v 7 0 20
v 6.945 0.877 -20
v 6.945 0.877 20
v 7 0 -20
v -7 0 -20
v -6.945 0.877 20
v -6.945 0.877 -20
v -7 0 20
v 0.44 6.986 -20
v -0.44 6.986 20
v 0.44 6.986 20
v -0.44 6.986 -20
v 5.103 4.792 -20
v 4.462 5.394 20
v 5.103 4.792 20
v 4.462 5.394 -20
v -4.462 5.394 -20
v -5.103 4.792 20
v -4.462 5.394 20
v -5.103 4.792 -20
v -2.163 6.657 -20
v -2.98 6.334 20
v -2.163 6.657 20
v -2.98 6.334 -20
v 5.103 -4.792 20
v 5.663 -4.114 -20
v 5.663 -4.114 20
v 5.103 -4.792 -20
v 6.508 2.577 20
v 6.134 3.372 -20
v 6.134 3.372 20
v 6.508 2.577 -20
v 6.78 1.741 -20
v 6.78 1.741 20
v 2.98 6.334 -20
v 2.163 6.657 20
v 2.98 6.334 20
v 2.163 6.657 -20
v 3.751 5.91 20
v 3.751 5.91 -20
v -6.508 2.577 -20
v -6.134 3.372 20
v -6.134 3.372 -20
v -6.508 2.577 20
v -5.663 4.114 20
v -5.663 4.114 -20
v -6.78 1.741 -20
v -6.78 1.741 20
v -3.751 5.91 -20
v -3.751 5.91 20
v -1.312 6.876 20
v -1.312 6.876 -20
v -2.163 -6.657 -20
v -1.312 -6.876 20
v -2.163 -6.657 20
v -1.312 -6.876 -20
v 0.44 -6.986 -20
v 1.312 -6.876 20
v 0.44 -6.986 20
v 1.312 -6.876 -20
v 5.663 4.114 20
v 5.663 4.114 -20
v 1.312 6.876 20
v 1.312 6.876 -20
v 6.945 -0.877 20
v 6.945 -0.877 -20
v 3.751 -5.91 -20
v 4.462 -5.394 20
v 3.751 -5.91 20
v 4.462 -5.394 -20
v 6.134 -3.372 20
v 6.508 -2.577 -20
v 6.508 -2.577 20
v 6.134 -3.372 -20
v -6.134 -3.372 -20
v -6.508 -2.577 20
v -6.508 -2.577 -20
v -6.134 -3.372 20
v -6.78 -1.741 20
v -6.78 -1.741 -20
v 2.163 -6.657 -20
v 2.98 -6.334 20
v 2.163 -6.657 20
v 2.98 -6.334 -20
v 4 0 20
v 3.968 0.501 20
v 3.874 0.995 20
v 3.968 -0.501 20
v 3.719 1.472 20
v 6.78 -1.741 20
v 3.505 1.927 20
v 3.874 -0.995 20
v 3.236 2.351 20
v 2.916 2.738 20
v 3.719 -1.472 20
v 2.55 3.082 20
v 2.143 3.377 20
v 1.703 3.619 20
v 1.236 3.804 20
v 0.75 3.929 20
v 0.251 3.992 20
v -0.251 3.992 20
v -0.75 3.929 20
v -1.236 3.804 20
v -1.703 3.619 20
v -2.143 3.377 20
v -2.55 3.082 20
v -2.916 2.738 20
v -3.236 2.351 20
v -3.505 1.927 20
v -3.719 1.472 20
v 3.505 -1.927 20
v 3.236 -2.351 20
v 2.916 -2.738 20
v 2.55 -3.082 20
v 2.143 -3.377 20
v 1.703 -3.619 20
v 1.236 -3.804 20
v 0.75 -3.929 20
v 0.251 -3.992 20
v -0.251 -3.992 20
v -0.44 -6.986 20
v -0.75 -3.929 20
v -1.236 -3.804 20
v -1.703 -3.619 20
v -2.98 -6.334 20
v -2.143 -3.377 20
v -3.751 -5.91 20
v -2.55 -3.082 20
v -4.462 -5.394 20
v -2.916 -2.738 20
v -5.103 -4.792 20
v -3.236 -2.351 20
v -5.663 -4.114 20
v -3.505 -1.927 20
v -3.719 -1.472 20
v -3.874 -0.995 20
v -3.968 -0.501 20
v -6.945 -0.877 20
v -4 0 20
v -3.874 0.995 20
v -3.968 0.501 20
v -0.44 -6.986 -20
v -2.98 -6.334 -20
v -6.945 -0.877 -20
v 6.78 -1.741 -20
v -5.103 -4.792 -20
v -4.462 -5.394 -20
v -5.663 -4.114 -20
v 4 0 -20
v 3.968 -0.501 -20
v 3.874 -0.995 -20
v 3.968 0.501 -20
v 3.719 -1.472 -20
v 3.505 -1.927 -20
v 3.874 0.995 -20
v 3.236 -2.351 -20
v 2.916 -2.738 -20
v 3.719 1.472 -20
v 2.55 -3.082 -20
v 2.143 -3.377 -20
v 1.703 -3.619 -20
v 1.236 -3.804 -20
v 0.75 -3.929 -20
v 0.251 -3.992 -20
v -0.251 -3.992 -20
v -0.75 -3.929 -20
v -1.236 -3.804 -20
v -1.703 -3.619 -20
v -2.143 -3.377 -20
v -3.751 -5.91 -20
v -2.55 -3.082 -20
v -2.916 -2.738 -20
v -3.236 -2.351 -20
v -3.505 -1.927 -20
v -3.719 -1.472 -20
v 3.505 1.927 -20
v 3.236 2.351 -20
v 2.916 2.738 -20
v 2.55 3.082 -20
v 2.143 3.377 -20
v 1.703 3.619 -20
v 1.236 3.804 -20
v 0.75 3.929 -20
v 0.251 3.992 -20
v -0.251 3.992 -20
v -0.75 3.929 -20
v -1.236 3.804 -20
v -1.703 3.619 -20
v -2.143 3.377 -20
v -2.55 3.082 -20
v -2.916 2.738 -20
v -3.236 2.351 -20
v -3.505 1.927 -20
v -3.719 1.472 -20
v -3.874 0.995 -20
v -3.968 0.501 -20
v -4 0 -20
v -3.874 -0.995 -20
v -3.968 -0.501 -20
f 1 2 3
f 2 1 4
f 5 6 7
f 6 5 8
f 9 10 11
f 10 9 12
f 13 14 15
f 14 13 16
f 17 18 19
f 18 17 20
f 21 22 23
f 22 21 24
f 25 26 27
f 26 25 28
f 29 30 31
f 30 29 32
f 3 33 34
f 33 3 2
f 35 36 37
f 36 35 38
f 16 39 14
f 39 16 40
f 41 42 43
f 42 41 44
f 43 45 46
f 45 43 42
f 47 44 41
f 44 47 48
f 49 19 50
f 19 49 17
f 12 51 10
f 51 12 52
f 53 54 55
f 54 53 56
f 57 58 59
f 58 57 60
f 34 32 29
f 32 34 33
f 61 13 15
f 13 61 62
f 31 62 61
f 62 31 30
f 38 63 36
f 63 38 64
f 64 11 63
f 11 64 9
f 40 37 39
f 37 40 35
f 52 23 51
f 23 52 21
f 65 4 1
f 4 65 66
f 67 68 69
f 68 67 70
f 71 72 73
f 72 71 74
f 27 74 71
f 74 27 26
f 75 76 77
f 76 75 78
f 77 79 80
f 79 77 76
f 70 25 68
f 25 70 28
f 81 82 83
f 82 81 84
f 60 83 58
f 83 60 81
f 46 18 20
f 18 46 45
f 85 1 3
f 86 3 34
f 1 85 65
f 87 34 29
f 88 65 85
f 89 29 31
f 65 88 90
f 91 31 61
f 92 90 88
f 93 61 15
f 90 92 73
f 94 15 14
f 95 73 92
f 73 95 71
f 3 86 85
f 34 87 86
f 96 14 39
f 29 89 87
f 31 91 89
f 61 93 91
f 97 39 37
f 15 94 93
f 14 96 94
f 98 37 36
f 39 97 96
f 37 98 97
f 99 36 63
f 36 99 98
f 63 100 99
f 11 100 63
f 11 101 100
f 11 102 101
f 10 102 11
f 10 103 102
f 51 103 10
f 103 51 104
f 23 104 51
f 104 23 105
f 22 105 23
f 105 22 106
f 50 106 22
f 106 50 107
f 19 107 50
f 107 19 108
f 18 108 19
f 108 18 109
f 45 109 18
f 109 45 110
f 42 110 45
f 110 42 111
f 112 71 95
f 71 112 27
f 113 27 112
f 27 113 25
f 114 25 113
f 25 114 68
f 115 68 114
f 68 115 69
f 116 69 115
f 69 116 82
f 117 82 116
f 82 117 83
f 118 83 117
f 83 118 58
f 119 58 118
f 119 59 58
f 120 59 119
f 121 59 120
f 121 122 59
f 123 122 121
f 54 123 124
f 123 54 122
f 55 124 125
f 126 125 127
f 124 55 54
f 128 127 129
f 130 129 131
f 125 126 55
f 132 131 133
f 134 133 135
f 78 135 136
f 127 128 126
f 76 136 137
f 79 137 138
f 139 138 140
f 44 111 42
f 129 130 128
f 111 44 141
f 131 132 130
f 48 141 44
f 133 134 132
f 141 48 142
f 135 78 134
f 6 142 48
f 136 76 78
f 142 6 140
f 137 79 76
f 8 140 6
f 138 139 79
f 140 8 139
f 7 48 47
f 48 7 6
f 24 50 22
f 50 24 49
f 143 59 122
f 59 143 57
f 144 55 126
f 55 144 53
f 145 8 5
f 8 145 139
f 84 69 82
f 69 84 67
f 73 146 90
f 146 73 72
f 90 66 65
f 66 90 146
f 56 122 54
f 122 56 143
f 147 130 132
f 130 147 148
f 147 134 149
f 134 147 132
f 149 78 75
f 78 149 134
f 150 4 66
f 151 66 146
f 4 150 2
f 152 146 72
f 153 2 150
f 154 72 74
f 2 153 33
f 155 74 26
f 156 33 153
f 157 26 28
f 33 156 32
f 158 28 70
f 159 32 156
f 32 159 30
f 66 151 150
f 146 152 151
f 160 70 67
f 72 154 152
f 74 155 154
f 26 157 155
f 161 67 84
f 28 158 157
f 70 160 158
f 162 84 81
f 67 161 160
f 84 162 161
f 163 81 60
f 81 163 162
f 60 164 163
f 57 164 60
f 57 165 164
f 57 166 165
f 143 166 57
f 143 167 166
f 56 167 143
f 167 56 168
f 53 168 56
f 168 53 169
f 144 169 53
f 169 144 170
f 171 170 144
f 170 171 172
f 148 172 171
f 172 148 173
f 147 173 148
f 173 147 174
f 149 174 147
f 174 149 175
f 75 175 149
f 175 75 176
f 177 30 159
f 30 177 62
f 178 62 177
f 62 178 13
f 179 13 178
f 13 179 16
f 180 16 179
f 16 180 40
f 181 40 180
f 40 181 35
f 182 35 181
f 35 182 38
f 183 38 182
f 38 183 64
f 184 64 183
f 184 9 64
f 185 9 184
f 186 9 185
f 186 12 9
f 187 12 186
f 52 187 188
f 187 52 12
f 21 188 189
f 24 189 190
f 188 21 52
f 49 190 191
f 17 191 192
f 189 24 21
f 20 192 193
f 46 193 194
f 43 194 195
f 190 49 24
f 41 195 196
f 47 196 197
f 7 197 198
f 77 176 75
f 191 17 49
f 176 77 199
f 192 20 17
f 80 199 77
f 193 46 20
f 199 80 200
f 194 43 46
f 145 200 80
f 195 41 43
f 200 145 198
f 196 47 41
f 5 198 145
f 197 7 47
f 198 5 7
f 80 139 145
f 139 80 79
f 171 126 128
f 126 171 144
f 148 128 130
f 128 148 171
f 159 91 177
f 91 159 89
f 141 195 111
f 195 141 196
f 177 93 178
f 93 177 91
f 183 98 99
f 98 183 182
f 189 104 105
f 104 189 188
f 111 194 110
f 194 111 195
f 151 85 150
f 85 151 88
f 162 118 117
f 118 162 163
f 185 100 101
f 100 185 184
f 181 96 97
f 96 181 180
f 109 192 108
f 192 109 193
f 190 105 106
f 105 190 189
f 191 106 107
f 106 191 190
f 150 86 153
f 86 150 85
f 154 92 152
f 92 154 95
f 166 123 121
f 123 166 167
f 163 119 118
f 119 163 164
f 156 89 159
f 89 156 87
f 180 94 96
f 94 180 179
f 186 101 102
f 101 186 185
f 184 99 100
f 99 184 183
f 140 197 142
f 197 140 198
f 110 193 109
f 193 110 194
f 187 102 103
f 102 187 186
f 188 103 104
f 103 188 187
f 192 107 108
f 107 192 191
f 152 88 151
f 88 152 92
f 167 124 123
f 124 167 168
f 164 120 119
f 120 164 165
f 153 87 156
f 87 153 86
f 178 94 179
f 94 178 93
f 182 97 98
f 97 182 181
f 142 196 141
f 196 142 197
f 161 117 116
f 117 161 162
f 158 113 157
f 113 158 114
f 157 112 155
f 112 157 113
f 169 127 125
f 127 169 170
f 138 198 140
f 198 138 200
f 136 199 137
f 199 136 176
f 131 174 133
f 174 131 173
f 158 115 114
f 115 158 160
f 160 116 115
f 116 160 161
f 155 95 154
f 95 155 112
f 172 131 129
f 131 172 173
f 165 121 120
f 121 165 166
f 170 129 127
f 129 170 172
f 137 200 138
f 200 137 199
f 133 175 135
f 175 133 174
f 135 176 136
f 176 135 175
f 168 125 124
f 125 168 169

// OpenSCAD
$fn = 50;


difference() {
	union() {
		translate(v = [0, 0, -20.0000000000]) {
			cylinder(h = 40, r = 7.0000000000);
		}
	}
	union() {
		translate(v = [0, 0, -100.0000000000]) {
			cylinder(h = 200, r = 4.0000000000);
		}
	}
}
